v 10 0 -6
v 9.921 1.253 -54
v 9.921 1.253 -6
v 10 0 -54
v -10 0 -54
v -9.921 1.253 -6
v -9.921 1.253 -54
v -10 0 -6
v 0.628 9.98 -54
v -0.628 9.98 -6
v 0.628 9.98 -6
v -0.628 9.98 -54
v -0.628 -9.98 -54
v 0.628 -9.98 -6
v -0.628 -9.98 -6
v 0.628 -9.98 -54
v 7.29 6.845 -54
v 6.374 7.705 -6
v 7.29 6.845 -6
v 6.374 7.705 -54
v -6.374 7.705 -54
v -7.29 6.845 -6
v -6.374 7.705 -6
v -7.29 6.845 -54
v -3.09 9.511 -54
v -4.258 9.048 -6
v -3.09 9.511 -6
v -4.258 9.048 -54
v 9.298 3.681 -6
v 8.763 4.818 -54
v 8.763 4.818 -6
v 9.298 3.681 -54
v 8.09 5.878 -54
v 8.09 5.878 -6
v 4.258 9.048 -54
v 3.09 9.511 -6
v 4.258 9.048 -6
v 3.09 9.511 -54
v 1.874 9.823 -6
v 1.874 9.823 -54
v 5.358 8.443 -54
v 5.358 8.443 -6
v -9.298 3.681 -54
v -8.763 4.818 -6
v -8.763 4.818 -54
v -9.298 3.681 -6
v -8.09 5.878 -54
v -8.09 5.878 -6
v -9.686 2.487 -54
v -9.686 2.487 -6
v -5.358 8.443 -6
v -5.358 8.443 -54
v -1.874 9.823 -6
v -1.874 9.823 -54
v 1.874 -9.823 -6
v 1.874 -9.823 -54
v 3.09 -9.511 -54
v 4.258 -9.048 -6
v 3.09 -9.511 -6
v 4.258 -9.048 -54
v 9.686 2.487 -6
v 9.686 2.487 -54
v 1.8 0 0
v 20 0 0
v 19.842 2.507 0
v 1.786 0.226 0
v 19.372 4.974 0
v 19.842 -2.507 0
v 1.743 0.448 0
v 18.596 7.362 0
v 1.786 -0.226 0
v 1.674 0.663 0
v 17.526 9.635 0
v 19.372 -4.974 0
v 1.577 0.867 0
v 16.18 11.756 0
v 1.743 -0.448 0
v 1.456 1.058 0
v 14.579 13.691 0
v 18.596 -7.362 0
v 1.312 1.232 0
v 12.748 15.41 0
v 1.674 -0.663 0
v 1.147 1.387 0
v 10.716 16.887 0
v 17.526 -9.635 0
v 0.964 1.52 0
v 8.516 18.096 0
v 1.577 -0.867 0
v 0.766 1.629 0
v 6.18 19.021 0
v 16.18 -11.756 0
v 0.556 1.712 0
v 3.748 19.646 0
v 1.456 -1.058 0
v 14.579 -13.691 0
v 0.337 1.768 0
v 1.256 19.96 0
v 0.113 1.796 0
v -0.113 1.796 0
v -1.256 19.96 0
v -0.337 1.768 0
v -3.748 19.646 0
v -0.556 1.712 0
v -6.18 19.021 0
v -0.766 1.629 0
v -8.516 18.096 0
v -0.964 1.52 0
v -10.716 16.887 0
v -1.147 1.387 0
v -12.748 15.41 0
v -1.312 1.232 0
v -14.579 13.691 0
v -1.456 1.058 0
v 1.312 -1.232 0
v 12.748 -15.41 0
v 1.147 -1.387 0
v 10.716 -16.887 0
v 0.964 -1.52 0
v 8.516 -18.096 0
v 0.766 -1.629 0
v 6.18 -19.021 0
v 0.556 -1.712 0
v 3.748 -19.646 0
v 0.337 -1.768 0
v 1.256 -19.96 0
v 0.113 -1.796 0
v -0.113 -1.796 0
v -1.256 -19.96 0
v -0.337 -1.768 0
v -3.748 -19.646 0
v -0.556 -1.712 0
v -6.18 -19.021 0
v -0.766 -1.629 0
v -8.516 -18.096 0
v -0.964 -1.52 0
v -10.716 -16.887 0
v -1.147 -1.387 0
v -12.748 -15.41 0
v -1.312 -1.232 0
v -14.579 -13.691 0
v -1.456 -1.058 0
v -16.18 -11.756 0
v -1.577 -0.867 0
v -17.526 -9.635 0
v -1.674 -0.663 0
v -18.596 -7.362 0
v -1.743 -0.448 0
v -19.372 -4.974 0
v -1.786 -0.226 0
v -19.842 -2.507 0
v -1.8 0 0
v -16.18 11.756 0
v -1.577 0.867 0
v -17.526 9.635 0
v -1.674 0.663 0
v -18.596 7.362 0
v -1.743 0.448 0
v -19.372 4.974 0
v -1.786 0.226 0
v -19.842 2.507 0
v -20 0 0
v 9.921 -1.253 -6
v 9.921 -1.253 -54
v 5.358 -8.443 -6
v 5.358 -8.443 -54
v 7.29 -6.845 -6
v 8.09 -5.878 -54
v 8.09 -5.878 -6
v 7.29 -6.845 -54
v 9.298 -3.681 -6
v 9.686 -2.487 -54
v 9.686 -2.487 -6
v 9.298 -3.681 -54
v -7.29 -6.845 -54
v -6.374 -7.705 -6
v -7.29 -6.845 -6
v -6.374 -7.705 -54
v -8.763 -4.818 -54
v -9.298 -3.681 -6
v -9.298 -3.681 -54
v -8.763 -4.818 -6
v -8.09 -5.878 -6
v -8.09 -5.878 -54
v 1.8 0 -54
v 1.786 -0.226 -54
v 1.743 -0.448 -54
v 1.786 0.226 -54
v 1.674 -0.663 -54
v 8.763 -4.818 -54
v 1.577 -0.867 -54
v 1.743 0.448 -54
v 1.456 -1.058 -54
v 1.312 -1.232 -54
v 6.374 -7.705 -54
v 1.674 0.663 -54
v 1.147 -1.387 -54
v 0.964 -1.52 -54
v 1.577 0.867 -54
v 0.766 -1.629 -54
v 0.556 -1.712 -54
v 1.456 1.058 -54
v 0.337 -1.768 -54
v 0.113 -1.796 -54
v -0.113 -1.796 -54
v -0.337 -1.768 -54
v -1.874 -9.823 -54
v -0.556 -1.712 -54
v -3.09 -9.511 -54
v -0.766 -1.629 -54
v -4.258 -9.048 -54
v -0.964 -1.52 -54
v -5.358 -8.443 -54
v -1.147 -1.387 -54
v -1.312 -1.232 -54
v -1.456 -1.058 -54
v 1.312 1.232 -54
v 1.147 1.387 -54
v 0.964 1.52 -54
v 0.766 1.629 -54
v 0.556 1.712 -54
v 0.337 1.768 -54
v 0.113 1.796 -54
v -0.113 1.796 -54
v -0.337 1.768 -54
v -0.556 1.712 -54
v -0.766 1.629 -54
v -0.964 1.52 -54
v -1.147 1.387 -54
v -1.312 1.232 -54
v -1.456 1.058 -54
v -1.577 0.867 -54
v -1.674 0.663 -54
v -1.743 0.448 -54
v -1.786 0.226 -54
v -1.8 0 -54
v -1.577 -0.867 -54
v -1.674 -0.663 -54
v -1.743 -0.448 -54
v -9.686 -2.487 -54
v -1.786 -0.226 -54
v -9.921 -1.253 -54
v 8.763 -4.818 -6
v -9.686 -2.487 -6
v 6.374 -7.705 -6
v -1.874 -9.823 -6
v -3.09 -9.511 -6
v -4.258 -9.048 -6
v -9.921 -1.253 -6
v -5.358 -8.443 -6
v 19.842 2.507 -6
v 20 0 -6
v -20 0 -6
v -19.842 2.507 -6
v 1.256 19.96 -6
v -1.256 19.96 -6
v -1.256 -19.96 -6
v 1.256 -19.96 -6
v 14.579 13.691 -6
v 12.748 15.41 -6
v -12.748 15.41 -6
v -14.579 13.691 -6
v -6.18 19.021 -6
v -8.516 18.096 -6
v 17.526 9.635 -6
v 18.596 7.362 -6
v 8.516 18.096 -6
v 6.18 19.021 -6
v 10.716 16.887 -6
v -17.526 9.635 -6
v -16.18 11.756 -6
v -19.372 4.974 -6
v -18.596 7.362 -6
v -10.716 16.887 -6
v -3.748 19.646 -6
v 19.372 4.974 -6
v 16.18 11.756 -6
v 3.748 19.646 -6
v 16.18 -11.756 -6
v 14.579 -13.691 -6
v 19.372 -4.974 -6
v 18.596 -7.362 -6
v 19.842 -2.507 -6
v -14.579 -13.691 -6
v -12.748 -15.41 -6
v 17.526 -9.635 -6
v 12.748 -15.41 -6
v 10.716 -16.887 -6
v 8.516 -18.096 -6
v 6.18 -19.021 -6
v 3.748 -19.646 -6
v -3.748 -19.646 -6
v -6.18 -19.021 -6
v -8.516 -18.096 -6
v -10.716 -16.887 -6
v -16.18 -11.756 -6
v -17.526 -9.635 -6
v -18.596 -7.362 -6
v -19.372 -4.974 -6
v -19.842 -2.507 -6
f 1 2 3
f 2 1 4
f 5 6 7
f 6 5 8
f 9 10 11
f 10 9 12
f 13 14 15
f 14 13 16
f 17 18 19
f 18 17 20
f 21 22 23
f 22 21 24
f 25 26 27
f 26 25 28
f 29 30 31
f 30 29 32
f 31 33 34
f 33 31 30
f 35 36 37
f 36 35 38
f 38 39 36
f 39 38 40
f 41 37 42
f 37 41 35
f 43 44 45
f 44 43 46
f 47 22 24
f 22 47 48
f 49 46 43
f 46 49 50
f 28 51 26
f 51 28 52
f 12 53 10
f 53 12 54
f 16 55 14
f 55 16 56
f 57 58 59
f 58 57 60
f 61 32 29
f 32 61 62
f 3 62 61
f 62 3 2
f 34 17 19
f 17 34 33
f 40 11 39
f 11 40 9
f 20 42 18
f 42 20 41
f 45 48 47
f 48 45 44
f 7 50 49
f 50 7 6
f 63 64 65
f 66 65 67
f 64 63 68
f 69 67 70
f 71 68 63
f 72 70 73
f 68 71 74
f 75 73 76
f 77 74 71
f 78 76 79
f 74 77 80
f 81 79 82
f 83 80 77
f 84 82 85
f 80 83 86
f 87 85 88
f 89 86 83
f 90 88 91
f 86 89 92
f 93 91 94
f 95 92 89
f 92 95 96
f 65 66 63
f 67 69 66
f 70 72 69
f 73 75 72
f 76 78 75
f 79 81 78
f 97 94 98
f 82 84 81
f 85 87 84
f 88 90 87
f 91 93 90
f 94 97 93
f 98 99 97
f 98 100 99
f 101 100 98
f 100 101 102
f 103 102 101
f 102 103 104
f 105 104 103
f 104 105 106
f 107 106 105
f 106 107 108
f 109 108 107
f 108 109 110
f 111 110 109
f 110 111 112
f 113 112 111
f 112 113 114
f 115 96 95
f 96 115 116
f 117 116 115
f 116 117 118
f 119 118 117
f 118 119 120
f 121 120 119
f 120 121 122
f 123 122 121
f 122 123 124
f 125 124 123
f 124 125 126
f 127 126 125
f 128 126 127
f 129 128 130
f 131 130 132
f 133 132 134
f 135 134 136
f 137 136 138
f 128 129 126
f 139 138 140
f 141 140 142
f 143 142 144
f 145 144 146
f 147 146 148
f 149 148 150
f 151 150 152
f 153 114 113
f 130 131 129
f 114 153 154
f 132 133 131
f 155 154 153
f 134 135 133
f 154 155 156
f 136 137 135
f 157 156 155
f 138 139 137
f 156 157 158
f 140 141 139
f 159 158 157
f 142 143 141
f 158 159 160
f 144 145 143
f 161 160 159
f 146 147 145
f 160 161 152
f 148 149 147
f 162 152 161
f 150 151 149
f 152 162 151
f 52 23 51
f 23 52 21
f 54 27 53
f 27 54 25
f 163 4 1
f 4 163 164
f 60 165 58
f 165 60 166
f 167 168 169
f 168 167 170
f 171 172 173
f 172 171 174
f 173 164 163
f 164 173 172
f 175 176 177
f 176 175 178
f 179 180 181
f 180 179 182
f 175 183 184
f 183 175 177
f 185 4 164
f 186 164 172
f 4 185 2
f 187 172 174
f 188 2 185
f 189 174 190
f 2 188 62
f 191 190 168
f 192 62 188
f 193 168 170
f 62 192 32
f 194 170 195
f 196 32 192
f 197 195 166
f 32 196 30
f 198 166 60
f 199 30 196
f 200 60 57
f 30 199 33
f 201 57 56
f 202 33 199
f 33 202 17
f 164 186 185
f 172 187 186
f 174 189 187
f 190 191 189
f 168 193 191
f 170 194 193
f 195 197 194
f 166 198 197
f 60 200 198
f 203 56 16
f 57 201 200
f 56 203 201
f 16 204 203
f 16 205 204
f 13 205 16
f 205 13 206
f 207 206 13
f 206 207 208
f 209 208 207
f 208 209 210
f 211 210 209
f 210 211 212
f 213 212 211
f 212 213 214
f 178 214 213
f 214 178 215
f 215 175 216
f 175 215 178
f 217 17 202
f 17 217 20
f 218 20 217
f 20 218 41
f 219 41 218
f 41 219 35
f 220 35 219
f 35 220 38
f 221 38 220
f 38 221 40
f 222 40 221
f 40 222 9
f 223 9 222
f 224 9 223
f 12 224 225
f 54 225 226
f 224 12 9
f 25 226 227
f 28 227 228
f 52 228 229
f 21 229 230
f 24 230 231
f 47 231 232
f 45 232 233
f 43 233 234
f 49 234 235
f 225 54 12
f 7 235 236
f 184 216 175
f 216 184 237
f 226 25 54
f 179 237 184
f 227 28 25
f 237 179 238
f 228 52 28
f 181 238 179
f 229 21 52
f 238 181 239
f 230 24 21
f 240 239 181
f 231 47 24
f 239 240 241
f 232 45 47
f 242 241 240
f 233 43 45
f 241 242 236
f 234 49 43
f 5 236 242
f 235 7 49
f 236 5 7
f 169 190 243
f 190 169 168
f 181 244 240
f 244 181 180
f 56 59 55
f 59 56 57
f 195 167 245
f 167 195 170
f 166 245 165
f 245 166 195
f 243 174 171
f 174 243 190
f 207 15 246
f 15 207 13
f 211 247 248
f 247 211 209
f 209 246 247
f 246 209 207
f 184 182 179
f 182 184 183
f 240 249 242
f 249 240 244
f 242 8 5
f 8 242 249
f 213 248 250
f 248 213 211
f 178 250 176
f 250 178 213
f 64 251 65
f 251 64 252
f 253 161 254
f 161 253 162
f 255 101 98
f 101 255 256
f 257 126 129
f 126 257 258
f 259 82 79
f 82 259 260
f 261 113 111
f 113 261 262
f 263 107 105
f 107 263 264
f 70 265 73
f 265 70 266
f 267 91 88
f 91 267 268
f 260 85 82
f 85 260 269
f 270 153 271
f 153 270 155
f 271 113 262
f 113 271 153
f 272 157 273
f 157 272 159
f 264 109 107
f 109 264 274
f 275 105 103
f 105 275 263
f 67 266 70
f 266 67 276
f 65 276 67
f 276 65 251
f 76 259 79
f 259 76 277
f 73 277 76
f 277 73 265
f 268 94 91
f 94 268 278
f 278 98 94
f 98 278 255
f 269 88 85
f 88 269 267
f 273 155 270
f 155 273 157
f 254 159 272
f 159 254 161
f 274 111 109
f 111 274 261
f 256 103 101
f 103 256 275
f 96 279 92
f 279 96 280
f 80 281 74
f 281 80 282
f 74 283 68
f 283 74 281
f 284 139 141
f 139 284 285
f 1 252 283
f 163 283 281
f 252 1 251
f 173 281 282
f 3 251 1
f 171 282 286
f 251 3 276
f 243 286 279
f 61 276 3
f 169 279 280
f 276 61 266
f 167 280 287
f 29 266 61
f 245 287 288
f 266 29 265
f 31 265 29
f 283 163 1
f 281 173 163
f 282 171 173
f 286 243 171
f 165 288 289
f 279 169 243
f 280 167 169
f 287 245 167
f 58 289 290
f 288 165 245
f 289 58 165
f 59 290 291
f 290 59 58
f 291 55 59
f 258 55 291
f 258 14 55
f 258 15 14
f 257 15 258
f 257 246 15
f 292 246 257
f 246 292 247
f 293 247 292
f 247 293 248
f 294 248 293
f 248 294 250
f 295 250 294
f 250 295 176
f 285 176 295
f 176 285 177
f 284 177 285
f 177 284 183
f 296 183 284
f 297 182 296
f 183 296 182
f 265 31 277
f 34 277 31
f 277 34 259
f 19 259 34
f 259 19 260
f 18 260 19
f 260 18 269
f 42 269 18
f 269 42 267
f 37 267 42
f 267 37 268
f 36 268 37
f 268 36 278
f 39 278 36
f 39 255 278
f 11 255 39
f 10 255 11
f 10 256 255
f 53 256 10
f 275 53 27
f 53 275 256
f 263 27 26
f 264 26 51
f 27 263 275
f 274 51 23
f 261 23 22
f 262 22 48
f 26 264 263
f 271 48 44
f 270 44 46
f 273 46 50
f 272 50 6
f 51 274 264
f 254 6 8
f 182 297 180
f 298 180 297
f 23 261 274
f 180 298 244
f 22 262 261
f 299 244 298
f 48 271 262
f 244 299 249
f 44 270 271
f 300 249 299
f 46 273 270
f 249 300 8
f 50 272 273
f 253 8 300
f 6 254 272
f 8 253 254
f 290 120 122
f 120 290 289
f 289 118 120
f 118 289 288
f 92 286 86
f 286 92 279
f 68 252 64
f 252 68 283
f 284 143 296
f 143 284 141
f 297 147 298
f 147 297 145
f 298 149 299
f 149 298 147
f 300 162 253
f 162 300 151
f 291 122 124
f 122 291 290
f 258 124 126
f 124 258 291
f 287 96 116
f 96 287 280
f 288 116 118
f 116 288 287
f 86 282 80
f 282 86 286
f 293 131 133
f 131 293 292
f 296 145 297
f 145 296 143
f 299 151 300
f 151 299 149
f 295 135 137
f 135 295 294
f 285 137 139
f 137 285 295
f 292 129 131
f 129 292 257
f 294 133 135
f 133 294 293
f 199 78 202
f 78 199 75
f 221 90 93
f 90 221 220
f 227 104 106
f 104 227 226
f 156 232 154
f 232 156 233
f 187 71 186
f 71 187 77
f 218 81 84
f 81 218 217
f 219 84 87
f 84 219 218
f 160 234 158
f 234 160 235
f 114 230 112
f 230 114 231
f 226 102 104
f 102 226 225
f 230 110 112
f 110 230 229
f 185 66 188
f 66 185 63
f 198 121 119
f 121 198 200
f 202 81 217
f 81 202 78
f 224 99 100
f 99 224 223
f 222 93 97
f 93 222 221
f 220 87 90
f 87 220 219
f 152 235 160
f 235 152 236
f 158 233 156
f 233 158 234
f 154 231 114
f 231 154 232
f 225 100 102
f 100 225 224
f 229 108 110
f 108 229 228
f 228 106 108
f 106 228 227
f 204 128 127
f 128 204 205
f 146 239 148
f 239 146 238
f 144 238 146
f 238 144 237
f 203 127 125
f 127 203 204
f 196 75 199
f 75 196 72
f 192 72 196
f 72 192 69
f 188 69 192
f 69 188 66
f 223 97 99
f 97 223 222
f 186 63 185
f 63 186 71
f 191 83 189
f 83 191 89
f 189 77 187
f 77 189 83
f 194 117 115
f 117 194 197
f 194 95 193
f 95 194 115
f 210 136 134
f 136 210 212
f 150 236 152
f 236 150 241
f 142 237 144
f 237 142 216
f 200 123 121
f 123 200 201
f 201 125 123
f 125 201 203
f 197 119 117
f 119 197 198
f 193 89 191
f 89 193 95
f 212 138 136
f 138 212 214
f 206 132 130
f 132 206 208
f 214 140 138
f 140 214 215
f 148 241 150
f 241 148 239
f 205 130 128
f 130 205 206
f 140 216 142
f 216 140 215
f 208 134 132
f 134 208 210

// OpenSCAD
$fn = 50;


difference() {
	union() {
		translate(v = [0, 0, -54.0000000000]) {
			cylinder(h = 54, r = 10.0000000000);
		}
		translate(v = [0, 0, -6.0000000000]) {
			cylinder(h = 6, r = 20.0000000000);
		}
	}
	union() {
		#translate(v = [0, 0, -54]) {
			cylinder(h = 54, r = 1.8000000000);
		}
	}
}
